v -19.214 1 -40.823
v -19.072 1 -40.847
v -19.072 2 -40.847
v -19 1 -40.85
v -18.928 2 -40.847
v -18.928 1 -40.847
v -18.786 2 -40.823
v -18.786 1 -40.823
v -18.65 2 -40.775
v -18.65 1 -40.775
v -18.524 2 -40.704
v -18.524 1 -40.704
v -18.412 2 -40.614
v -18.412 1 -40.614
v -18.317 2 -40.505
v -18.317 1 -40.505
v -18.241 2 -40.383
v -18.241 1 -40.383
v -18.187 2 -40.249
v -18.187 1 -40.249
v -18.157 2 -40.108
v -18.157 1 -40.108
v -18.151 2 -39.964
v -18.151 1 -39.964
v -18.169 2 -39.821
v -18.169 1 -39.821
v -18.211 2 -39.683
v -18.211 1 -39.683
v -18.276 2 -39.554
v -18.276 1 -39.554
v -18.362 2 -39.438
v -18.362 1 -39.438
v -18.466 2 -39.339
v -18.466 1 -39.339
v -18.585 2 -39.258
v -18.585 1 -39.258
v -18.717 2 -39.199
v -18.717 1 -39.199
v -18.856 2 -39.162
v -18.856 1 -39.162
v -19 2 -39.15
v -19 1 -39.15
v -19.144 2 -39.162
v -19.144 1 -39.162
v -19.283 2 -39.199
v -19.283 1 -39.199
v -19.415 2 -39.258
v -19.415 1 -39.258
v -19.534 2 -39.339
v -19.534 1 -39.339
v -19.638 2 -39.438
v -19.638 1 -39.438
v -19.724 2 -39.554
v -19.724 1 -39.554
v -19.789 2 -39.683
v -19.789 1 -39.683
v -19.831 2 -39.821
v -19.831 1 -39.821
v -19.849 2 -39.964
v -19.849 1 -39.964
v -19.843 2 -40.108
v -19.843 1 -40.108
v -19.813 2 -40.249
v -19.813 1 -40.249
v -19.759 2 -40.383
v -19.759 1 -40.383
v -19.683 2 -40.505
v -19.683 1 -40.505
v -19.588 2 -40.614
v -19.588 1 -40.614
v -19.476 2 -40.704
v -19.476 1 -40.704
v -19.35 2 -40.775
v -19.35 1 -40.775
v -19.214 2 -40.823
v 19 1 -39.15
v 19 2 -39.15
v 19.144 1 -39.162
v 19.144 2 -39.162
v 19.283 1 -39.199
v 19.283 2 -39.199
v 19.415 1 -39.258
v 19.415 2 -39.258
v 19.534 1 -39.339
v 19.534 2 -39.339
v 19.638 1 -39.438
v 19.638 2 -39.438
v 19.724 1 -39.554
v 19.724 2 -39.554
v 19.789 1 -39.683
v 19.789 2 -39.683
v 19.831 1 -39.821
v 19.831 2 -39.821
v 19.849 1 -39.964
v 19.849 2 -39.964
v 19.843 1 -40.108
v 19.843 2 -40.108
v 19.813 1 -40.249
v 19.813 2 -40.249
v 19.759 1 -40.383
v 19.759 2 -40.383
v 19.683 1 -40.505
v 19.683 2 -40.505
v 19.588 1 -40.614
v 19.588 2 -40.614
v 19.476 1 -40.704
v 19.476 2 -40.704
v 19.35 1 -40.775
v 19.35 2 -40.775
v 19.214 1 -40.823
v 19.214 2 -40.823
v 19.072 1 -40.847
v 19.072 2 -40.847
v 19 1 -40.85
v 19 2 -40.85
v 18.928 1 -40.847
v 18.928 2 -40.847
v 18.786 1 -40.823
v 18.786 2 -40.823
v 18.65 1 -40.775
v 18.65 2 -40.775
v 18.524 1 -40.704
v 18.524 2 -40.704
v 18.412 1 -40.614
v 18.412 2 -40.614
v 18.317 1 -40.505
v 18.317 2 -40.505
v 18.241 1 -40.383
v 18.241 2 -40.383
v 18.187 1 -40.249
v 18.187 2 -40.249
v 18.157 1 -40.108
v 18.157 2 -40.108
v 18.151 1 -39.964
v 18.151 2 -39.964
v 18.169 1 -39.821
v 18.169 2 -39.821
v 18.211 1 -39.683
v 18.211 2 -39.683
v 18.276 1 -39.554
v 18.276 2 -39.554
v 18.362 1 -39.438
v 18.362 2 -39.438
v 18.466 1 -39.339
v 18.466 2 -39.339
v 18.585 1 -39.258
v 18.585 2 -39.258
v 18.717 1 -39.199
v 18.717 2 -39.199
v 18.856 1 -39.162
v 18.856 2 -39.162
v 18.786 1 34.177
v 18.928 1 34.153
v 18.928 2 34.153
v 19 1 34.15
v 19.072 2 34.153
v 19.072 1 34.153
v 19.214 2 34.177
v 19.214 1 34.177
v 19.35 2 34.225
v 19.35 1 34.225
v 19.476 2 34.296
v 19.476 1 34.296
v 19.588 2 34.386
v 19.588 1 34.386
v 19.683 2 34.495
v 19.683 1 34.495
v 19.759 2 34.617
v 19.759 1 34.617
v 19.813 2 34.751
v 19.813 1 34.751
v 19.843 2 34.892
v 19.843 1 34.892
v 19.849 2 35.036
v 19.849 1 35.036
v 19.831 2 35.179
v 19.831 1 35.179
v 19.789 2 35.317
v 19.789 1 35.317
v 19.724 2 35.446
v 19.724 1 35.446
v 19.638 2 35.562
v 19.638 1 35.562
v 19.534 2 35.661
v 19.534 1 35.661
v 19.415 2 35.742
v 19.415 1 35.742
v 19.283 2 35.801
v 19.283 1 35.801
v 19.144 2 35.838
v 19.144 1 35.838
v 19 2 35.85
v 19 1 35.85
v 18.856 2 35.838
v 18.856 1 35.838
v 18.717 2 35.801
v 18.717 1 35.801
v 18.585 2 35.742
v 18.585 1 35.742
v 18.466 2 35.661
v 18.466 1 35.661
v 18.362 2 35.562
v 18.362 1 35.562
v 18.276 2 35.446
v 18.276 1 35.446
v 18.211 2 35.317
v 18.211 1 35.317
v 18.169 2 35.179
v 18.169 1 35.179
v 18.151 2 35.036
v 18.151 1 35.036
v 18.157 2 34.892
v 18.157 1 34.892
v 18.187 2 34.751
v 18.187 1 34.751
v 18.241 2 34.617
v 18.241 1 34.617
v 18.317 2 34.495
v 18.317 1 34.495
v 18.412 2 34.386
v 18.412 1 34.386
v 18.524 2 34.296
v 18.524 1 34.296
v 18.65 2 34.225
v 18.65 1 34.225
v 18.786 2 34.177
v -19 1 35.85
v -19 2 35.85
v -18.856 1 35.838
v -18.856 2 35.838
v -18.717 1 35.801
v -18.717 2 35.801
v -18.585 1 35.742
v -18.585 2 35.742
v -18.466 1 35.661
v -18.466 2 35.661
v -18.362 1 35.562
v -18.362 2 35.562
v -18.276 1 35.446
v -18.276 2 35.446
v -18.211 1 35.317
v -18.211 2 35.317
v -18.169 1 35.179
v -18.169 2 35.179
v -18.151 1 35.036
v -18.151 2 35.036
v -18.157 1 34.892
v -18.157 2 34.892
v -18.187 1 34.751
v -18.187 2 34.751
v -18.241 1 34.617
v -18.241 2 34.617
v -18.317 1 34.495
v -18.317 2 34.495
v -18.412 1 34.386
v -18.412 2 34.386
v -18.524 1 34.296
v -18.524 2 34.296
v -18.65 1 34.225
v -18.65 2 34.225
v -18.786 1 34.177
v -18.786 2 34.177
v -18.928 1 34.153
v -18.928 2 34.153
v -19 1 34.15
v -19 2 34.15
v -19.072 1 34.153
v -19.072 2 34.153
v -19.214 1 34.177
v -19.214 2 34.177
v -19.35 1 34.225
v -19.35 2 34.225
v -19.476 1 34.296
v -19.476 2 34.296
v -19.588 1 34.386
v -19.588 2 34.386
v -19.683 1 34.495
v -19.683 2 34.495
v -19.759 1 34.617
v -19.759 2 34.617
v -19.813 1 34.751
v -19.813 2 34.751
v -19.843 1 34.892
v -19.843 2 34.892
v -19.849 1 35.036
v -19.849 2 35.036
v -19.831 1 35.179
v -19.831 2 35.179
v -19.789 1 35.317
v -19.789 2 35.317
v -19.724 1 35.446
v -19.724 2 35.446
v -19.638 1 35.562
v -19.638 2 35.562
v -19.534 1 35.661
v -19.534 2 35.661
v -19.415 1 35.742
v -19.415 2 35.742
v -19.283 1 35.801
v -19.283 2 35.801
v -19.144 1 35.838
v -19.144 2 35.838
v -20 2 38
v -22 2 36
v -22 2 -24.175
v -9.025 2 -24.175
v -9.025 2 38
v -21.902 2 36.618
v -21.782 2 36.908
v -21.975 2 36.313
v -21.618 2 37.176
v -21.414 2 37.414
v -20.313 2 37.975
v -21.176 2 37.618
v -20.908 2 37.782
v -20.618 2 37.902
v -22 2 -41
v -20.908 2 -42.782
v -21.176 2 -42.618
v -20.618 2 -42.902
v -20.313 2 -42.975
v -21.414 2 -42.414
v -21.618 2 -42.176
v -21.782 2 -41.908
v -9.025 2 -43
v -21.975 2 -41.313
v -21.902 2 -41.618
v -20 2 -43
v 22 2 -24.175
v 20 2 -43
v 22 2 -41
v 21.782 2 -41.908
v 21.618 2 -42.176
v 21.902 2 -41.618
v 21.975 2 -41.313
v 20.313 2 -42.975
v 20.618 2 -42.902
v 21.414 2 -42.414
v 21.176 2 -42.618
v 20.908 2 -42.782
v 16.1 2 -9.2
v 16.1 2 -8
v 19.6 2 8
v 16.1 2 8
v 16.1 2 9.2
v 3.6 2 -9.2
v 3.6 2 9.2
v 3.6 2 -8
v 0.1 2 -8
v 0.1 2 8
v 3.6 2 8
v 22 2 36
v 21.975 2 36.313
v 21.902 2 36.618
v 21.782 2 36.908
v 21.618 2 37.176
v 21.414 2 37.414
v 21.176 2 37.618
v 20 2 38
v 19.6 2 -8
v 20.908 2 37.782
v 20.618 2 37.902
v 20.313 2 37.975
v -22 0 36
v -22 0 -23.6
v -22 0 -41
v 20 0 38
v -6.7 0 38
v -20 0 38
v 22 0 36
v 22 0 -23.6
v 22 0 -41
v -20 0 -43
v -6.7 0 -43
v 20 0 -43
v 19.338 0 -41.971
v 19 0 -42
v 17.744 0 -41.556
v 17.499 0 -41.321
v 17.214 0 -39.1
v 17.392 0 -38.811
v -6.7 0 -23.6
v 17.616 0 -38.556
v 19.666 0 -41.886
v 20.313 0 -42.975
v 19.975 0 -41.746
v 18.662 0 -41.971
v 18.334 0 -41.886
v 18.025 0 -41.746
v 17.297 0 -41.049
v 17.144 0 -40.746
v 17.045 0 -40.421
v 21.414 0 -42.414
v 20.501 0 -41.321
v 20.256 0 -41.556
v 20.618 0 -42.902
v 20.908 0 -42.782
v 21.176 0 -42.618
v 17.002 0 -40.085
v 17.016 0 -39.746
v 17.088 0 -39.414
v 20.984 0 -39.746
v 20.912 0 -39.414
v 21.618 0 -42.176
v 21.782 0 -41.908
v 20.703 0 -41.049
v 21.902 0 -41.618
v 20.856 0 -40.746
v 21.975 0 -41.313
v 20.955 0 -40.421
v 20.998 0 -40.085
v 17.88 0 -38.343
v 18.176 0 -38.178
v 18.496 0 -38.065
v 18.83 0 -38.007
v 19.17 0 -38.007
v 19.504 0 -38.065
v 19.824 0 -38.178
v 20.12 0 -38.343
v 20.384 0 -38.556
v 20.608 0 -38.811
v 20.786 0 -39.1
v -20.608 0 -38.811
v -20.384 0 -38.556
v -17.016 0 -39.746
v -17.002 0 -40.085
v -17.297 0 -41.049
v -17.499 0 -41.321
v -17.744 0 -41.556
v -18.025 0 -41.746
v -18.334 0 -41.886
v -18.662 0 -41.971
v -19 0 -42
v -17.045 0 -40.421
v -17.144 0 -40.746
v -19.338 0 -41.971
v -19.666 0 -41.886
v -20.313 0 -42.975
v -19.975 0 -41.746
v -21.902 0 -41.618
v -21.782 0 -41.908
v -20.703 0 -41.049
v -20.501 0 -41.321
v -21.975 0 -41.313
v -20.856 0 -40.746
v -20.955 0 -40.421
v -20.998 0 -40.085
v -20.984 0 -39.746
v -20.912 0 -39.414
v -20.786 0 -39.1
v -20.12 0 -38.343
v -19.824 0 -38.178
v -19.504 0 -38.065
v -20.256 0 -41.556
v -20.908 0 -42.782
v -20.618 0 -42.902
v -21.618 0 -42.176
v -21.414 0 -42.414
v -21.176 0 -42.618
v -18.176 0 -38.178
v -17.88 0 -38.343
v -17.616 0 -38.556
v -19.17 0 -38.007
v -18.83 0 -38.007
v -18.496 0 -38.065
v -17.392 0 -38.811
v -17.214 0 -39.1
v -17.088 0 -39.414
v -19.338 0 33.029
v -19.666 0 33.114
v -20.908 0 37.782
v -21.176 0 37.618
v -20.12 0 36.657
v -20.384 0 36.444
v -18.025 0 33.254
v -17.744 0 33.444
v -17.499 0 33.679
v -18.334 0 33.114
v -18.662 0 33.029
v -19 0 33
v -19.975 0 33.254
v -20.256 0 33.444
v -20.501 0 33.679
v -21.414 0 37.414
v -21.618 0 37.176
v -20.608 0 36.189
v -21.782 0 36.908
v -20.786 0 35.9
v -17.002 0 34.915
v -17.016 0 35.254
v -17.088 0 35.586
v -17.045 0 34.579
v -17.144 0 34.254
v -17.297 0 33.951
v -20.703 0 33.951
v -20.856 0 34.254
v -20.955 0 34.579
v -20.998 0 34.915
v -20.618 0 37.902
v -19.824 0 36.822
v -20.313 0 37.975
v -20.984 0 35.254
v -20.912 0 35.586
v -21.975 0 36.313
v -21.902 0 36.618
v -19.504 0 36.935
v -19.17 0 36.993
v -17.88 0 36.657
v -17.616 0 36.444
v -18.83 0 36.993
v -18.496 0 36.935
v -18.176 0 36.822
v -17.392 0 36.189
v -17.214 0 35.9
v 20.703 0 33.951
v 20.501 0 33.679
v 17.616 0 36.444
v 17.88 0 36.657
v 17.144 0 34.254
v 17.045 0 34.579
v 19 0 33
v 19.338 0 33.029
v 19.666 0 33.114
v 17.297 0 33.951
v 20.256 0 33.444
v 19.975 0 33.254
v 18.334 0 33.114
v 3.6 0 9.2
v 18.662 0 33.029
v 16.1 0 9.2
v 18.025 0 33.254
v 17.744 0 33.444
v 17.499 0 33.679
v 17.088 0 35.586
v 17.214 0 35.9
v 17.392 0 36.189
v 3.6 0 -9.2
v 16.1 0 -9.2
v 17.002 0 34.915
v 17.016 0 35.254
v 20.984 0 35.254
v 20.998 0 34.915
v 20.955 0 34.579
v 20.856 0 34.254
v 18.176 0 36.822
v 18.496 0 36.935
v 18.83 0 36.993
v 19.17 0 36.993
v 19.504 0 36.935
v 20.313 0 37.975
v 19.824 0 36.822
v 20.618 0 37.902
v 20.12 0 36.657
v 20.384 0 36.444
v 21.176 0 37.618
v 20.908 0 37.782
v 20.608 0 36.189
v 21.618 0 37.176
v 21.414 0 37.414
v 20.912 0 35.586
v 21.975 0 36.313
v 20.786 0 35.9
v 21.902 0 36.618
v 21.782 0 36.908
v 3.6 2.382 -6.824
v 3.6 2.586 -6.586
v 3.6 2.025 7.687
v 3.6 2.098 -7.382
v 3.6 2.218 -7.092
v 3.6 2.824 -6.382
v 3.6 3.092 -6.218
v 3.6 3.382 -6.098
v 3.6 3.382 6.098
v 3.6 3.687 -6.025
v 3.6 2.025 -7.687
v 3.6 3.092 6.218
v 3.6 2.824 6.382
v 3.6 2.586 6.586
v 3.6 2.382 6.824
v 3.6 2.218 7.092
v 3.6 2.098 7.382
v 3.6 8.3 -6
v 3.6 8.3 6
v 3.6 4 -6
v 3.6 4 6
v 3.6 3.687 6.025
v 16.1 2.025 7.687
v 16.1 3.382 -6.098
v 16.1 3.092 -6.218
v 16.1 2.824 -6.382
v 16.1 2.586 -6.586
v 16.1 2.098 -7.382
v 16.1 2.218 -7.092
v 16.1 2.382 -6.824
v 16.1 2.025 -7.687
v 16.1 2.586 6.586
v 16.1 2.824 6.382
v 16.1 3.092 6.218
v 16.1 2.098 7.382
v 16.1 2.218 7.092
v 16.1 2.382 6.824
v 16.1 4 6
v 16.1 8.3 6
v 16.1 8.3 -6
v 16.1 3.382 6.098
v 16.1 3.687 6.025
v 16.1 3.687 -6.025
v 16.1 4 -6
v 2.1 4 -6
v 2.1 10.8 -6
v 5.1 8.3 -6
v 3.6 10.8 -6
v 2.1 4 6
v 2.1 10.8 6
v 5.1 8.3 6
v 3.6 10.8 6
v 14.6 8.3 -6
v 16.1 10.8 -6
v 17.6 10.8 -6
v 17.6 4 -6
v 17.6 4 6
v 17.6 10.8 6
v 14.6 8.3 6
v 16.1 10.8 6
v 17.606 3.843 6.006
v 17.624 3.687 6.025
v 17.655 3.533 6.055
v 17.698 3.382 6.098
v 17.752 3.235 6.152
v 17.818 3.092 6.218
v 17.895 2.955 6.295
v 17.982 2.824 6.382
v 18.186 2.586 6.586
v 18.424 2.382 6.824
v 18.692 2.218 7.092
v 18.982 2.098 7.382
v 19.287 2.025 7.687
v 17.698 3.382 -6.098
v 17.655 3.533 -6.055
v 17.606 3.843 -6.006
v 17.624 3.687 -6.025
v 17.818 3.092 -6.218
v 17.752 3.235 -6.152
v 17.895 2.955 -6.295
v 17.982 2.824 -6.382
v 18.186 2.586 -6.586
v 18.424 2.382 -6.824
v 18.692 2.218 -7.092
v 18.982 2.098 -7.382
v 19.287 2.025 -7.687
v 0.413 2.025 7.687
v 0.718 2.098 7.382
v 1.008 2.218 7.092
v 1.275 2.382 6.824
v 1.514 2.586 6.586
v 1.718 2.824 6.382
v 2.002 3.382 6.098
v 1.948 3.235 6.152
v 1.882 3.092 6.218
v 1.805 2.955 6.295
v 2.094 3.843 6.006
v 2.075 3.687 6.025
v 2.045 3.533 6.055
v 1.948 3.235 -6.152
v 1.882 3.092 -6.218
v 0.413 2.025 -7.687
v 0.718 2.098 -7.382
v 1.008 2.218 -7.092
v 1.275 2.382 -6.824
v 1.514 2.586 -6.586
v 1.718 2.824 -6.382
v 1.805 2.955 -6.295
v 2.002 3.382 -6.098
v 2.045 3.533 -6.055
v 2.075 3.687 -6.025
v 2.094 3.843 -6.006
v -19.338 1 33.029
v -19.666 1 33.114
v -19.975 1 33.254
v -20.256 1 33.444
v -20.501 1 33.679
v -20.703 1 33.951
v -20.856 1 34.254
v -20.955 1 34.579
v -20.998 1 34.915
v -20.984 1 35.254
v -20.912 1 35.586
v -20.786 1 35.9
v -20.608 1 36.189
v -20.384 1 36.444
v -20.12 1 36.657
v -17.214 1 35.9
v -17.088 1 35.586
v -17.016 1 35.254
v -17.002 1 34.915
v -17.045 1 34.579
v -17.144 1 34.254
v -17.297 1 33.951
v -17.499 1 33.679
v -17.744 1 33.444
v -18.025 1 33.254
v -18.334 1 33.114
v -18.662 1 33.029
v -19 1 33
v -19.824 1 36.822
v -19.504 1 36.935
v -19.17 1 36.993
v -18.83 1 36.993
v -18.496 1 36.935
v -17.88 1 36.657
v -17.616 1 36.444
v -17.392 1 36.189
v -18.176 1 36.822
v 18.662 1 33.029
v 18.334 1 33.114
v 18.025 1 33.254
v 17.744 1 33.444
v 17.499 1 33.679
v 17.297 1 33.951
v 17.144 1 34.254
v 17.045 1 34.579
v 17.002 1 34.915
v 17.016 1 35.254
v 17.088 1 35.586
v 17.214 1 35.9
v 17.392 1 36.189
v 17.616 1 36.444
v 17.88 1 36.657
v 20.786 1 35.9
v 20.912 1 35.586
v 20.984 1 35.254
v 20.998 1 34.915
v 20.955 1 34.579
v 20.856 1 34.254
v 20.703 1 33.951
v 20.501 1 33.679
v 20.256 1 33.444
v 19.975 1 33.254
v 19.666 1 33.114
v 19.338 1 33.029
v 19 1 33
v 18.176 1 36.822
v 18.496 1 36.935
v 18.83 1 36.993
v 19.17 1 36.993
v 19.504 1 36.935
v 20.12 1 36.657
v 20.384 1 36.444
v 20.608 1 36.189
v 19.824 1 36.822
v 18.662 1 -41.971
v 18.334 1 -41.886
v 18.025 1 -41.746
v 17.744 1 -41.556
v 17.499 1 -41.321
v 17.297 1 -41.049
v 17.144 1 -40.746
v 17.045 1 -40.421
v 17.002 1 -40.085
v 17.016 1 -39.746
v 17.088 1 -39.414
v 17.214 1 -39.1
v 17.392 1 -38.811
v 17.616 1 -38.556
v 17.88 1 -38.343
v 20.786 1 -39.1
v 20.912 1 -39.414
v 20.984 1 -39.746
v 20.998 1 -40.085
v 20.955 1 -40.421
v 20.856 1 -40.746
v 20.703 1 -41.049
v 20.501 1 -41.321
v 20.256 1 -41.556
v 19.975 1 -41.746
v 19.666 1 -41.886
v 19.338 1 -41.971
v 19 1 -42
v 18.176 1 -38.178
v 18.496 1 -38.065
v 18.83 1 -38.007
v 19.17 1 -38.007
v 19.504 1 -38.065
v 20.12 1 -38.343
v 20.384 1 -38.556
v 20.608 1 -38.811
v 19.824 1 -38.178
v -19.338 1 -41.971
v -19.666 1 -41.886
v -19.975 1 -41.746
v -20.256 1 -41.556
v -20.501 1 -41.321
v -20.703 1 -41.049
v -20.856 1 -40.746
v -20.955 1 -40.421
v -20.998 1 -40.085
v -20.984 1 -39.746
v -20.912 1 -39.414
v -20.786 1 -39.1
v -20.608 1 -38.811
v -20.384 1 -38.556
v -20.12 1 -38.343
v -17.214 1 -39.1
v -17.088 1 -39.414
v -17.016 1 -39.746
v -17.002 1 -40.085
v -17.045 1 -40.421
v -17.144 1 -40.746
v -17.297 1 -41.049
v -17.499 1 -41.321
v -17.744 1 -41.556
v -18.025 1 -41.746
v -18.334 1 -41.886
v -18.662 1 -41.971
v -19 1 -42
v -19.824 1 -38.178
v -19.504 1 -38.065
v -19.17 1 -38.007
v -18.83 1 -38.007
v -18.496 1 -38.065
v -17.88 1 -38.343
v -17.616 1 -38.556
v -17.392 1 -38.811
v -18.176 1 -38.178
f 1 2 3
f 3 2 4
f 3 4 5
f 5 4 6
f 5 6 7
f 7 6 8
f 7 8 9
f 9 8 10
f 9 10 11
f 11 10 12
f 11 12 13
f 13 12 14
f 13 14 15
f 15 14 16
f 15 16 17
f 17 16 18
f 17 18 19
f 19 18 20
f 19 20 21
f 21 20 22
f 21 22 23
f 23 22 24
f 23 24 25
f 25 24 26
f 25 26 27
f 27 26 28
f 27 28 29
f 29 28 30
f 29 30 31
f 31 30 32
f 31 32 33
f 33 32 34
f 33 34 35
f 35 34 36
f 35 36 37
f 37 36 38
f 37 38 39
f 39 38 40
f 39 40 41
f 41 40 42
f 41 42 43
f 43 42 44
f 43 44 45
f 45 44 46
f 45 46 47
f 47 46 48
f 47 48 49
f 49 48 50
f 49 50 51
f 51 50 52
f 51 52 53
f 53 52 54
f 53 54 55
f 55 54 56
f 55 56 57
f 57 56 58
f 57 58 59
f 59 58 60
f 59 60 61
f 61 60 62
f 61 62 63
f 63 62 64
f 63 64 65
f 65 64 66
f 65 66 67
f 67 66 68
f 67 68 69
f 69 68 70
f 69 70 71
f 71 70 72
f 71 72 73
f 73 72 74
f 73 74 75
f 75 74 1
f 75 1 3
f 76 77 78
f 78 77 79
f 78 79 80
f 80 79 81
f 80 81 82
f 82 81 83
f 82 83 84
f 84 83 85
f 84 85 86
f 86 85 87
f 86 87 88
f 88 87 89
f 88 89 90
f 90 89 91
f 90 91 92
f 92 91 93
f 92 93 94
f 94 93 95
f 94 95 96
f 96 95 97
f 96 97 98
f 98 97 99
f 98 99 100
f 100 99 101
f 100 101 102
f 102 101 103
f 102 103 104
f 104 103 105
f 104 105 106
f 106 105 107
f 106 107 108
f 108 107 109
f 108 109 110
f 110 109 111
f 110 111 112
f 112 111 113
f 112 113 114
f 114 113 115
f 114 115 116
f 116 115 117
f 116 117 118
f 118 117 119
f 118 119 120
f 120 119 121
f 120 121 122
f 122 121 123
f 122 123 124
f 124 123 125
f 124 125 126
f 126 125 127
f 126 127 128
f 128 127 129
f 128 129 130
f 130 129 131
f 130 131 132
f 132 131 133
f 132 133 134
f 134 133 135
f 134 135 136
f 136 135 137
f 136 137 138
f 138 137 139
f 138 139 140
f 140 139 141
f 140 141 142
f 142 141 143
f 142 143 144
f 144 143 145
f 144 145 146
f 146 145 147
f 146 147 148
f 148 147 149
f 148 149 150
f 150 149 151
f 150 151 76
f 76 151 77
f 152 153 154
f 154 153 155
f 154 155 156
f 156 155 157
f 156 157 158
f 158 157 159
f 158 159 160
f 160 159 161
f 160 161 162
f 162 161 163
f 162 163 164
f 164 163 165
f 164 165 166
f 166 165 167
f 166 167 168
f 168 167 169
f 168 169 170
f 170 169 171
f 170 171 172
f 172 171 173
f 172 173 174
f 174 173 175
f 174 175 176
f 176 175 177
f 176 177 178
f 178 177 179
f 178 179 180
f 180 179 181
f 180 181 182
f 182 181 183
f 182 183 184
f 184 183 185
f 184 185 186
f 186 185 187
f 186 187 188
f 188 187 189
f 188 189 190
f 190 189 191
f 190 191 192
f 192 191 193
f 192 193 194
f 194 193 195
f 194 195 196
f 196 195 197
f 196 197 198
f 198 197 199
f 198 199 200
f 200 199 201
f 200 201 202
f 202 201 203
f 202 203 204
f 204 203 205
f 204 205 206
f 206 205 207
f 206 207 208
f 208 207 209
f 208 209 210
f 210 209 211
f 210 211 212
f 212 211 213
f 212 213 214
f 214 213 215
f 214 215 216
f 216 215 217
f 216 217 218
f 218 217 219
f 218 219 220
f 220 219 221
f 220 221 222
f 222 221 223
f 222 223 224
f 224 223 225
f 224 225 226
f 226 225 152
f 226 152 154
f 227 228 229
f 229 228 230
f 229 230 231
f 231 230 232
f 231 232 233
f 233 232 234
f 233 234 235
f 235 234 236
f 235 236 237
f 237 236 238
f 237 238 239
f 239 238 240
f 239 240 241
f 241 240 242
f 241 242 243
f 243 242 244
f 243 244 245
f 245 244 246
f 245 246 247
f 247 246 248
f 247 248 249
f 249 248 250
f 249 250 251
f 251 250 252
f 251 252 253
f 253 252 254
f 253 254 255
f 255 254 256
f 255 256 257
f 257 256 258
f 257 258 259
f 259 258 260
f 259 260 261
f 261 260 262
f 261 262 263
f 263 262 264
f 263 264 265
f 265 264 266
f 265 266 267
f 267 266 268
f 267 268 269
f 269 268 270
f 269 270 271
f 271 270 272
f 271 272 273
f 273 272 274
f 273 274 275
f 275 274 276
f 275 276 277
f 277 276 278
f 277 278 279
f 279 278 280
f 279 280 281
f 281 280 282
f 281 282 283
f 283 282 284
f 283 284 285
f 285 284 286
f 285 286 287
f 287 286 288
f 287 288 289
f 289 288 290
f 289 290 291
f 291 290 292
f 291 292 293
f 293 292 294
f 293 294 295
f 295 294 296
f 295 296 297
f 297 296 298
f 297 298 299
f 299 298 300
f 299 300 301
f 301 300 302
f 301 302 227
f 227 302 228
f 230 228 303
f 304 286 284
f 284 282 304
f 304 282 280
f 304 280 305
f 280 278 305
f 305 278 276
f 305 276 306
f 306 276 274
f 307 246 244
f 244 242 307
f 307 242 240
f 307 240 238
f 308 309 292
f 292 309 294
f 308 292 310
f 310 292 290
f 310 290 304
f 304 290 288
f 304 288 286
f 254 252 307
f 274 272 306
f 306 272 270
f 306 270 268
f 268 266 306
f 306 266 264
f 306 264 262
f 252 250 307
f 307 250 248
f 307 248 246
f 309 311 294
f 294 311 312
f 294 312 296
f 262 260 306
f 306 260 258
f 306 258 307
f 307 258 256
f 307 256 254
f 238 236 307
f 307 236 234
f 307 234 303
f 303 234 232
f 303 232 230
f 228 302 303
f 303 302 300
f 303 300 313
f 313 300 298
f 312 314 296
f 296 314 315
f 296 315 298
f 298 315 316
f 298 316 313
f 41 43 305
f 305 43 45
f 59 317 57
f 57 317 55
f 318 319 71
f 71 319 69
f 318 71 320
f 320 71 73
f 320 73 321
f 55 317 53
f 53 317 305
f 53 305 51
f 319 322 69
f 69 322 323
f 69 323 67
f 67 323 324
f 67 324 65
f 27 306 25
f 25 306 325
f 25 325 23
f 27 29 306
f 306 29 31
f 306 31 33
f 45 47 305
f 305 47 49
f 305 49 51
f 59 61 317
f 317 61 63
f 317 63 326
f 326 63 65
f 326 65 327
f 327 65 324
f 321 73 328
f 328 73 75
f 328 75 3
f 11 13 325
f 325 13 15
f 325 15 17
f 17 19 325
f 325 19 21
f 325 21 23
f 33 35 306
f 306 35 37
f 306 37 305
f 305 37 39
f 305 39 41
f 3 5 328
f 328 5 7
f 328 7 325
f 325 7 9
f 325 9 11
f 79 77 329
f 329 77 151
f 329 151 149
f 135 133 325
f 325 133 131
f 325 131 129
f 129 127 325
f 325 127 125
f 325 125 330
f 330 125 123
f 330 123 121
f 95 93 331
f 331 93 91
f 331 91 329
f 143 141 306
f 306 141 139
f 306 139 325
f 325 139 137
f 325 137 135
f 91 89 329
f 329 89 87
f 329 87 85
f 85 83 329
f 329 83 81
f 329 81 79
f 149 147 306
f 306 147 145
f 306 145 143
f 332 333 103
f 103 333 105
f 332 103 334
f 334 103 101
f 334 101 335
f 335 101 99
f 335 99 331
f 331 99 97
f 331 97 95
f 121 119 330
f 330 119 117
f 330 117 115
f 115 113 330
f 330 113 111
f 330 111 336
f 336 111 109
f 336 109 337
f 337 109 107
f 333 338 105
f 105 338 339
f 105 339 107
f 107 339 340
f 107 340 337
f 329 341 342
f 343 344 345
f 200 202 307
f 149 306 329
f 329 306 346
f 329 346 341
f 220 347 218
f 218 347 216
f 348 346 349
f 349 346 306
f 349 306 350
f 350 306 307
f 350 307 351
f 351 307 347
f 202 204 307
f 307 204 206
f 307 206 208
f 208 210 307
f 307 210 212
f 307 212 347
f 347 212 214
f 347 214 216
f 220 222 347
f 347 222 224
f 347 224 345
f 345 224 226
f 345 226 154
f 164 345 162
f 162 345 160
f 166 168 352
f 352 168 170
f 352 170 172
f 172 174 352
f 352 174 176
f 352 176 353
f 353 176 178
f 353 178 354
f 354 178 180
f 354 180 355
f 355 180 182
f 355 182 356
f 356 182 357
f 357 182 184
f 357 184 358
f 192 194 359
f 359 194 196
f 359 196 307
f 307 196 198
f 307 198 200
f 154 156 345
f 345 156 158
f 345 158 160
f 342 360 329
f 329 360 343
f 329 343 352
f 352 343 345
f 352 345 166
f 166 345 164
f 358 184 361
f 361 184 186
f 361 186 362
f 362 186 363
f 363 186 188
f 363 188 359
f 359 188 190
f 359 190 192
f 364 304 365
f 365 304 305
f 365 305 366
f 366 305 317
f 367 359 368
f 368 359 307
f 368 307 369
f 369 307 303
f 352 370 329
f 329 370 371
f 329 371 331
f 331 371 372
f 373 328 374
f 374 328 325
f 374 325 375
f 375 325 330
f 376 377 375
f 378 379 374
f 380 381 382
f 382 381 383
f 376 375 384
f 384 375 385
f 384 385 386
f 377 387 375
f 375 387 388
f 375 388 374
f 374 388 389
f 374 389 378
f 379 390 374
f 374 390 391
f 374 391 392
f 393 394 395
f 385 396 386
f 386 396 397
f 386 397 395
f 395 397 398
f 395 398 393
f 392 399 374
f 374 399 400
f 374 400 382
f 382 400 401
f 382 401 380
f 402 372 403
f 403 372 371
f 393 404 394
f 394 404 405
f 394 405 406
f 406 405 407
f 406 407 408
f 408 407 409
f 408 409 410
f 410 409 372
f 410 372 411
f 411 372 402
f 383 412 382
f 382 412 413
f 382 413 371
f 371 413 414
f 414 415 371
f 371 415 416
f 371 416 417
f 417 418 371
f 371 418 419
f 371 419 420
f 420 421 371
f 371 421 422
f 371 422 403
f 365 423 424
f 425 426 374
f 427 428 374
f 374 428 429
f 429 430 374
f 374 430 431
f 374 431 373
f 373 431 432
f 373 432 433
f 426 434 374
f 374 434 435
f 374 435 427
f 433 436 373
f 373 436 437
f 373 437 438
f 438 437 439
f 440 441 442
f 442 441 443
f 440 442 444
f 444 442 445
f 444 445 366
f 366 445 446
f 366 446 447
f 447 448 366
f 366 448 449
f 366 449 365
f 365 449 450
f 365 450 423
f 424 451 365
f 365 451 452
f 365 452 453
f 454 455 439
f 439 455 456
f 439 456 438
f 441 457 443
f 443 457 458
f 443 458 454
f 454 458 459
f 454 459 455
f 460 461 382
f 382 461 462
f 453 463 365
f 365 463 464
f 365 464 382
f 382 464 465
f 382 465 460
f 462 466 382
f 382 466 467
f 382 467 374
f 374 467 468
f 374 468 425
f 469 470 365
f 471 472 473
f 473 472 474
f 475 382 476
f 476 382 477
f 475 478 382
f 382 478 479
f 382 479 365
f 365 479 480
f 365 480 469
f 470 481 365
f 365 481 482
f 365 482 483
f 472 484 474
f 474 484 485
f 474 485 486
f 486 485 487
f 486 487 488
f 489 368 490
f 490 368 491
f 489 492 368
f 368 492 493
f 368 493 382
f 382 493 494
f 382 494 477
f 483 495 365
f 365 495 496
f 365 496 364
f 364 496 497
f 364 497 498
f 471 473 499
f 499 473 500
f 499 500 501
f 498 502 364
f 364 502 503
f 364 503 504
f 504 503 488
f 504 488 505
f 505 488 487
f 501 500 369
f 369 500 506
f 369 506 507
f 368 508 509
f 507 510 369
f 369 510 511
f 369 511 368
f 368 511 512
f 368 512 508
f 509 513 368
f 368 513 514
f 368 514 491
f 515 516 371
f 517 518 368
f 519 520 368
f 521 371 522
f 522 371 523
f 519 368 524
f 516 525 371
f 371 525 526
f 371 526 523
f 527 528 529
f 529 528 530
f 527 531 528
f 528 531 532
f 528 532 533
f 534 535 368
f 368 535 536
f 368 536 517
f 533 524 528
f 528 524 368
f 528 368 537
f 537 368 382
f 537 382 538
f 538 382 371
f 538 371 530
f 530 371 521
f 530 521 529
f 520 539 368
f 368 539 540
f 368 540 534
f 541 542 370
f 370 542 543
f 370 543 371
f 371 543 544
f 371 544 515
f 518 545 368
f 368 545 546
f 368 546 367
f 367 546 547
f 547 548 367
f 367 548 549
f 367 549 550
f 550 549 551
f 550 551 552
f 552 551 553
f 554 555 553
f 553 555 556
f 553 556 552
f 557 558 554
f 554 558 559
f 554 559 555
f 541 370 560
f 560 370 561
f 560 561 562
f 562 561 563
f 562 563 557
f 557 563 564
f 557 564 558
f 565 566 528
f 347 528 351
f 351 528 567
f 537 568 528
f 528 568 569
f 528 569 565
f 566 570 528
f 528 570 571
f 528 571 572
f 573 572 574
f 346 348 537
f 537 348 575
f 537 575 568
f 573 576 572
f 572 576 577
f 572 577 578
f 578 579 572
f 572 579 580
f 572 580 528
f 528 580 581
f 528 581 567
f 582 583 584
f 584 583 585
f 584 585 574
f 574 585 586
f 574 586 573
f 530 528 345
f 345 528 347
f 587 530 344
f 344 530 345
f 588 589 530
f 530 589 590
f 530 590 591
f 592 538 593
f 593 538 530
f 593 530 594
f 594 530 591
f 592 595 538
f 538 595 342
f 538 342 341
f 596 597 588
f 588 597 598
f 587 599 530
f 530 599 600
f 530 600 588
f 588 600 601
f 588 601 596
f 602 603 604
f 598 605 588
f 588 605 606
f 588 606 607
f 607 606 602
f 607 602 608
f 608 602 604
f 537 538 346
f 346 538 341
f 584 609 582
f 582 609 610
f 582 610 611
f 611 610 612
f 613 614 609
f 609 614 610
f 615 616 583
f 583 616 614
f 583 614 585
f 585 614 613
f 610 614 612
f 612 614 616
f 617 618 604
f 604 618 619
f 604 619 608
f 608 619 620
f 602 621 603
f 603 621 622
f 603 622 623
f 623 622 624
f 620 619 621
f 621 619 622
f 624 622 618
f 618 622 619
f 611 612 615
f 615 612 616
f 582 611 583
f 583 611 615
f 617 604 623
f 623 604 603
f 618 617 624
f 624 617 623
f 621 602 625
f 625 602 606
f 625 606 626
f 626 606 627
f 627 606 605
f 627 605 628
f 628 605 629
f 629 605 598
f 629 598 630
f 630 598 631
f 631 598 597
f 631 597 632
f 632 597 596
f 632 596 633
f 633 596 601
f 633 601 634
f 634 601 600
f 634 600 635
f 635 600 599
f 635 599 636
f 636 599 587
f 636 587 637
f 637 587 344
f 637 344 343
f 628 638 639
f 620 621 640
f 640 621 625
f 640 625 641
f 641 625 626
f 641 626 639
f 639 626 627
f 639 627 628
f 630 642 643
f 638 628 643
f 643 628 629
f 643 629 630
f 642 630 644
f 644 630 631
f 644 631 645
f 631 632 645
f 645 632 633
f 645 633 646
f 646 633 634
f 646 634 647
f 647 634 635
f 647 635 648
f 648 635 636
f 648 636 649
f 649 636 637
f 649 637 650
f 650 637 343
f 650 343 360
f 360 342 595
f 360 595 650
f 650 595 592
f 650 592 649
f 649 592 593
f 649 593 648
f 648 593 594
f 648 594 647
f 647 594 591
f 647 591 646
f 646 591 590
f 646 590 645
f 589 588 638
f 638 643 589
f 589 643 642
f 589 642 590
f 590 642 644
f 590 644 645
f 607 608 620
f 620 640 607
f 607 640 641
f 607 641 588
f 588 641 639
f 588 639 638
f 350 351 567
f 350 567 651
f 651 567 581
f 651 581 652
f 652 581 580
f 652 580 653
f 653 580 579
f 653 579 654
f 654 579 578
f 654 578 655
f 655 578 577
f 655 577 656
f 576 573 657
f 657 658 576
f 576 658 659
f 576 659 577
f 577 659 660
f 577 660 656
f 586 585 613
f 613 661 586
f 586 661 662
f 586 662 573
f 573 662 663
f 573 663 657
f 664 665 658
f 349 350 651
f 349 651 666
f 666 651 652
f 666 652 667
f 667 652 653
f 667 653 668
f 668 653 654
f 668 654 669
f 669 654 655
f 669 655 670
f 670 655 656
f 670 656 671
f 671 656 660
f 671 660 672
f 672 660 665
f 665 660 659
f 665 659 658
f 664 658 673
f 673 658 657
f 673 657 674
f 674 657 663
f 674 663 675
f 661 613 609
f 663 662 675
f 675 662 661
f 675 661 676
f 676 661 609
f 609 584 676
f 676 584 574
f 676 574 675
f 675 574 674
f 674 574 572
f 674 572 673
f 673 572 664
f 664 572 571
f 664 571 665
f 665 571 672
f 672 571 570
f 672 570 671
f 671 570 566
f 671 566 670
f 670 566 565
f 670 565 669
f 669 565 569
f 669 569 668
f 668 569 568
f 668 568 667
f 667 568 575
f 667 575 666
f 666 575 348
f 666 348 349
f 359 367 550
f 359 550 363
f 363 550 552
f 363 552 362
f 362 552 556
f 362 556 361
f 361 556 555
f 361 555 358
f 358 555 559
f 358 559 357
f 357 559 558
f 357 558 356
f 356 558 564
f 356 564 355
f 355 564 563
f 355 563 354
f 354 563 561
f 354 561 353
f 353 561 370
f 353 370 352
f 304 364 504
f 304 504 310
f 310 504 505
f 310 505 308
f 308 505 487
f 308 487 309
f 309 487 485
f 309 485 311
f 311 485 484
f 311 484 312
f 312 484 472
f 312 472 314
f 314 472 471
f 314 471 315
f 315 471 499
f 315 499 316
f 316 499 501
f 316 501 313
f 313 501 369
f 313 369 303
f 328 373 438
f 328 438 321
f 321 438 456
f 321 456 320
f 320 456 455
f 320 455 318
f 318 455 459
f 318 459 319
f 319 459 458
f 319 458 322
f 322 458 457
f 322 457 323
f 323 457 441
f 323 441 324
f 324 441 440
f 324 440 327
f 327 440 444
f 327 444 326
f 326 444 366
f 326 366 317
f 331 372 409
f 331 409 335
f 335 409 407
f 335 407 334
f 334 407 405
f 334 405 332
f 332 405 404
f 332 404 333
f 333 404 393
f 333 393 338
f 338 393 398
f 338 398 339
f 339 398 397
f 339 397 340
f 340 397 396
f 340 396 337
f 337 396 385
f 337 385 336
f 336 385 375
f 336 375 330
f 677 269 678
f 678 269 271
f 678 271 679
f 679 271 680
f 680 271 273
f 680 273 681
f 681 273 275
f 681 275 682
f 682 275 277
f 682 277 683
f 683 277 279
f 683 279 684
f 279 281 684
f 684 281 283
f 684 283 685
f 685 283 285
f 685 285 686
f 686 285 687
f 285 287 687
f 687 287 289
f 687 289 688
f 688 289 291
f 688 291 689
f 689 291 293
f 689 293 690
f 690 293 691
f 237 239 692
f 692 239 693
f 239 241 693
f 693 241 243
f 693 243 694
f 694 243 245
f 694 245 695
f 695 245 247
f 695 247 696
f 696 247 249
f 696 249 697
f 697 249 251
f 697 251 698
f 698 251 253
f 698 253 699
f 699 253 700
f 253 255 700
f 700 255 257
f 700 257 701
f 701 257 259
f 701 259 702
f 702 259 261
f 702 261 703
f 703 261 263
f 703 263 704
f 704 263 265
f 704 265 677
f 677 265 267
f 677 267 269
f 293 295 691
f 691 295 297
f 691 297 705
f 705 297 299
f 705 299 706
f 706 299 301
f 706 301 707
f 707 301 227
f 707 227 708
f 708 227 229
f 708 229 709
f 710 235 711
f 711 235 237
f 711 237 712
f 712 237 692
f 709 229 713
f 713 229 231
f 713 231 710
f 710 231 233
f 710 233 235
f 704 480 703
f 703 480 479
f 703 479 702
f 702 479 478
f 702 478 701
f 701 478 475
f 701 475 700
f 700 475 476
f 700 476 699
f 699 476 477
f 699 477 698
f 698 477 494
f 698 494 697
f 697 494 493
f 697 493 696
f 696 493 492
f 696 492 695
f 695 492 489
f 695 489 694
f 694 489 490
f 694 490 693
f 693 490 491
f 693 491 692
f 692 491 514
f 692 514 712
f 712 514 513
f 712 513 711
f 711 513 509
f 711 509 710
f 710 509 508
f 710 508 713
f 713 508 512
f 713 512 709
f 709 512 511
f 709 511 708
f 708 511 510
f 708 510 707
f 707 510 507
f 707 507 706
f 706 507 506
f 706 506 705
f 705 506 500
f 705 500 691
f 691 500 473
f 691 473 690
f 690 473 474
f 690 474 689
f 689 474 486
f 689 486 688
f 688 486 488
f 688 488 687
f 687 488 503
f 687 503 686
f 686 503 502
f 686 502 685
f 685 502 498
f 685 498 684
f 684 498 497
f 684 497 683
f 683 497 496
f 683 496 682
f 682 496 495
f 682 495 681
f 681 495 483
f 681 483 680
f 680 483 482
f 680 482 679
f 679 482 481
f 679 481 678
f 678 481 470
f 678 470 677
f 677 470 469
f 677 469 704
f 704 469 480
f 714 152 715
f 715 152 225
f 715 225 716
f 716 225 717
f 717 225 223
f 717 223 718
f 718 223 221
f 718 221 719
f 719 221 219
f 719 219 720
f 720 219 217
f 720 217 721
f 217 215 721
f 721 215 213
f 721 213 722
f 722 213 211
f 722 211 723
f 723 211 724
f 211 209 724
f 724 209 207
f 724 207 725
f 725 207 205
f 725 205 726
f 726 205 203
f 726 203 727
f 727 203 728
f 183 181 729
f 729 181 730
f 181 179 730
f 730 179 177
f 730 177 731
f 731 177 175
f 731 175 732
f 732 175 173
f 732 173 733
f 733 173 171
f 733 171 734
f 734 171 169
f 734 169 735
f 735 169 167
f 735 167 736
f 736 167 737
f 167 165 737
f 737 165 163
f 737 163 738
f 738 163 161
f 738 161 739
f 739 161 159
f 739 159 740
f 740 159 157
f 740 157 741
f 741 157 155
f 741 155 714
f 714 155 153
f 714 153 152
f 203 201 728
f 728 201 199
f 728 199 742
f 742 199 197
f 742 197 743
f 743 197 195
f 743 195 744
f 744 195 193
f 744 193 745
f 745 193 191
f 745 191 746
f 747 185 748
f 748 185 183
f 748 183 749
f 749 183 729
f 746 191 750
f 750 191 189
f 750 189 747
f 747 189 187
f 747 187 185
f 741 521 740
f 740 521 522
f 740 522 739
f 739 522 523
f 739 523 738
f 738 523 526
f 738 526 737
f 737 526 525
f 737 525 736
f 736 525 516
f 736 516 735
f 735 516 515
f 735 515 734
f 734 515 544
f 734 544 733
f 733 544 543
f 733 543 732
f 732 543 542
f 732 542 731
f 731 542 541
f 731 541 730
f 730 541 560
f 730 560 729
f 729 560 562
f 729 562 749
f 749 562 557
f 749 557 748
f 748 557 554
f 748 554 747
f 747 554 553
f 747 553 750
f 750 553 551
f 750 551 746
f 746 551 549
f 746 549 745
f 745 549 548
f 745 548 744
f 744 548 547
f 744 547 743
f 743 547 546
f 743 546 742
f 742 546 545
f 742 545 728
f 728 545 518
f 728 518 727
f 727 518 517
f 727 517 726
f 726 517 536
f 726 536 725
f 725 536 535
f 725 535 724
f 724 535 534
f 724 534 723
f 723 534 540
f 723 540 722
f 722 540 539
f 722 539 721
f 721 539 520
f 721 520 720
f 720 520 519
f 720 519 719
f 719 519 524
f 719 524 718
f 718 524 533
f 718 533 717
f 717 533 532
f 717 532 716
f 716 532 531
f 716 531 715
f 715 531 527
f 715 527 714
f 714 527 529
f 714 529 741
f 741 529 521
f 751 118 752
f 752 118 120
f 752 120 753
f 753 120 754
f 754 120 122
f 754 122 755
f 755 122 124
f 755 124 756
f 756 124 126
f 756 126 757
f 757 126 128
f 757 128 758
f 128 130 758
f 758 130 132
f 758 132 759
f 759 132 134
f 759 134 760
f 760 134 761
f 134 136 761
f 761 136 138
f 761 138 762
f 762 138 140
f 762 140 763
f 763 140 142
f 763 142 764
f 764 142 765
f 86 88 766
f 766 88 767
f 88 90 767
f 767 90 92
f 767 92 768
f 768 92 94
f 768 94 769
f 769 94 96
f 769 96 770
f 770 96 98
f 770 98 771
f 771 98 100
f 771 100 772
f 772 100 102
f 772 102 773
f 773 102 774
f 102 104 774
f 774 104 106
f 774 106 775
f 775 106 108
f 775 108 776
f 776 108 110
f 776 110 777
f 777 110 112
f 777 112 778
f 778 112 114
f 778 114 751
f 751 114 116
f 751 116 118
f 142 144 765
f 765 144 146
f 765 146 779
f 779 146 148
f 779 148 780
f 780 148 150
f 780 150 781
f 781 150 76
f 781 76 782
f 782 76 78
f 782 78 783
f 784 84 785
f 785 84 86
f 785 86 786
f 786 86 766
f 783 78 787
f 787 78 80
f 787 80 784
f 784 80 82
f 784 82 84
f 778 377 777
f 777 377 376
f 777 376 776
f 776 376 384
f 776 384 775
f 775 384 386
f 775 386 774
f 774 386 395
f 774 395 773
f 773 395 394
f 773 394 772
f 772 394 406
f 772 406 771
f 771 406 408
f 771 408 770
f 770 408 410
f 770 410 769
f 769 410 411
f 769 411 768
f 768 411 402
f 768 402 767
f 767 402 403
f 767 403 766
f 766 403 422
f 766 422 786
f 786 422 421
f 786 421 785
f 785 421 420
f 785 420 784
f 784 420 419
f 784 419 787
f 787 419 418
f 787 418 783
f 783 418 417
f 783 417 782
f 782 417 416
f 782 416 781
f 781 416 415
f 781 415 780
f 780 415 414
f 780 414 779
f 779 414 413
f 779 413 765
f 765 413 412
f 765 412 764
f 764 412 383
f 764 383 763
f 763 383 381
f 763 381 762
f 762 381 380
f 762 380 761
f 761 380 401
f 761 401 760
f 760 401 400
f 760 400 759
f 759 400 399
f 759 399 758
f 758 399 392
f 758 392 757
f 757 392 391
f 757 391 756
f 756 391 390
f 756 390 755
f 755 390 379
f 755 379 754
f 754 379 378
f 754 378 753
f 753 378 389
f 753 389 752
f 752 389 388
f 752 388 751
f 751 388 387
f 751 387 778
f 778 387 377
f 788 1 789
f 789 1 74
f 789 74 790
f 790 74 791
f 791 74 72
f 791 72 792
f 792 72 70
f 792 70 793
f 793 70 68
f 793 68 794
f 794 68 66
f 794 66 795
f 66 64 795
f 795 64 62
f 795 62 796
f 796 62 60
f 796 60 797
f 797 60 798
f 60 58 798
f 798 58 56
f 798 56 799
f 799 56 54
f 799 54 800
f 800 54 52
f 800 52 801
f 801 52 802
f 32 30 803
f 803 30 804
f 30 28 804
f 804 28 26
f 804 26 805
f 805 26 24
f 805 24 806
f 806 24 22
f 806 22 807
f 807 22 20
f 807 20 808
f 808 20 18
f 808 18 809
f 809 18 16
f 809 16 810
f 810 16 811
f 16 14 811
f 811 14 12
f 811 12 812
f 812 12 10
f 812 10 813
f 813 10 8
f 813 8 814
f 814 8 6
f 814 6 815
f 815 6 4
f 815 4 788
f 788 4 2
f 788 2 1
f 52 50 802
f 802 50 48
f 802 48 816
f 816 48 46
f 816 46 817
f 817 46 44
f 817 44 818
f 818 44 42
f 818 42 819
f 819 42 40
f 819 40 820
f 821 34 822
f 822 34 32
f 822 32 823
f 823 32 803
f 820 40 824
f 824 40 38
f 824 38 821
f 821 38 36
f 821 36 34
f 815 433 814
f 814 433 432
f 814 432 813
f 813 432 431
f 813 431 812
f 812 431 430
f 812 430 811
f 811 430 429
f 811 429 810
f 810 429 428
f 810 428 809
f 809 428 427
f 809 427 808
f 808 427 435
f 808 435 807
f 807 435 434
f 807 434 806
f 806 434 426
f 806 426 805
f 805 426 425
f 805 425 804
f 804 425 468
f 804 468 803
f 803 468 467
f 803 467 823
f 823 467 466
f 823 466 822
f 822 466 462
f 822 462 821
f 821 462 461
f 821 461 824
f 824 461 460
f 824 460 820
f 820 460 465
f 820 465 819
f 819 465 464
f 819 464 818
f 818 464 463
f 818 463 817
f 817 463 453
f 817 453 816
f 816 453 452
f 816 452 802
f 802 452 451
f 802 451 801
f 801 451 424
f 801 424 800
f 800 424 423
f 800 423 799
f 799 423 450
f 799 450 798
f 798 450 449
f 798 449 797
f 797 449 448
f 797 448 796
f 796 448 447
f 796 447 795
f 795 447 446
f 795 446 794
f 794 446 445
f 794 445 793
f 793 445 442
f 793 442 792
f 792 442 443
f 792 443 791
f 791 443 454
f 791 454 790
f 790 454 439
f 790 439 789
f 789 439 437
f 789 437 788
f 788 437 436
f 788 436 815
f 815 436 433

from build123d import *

# Parameters (mm, degrees)
SKETCH_1_W          = 44
SKETCH_1_H          = 81
EXTRUDE_1_DEPTH     = 2
SKETCH_12_W         = 12.5
SKETCH_12_H         = 18.4
CUT_EXTRUDE_3_DEPTH = 7.5
SKETCH_15_W         = 1.5
SKETCH_15_H         = 12
EXTRUDE_10_DEPTH    = 8.8
EXTRUDE_11_DEPTH    = 12
EXTRUDE_12_DEPTH    = 12
FILLET_2_R          = 2
FILLET_3_R          = 2
SKETCH_19_R         = 0.85
CUT_EXTRUDE_4_DEPTH = 12
SKETCH_20_R         = 2
CUT_EXTRUDE_5_DEPTH = 1


with BuildPart() as part:
    # 草图1 → 凸台-拉伸1 (new body)
    with BuildSketch(Plane(origin=(0, 0, 0), x_dir=(1, 0, 0), z_dir=(0, 1, 0))):
        with Locations((0, 2.5)):
            Rectangle(SKETCH_1_W, SKETCH_1_H)
    extrude(amount=EXTRUDE_1_DEPTH)

    # 草图12 → 切除-拉伸3 (cut)
    with BuildSketch(Plane.XZ):
        with Locations((9.849848709, 0)):
            Rectangle(SKETCH_12_W, SKETCH_12_H)
    extrude(amount=-CUT_EXTRUDE_3_DEPTH, mode=Mode.SUBTRACT)

    # 草图15 → 凸台-拉伸10 (add)
    with BuildSketch(Plane(origin=(0, 2, 0), x_dir=(1, 0, 0), z_dir=(0, 1, 0))):
        with Locations((2.849848709, 0)):
            Rectangle(SKETCH_15_W, SKETCH_15_H)
        with Locations((16.849848709, 0)):
            Rectangle(SKETCH_15_W, SKETCH_15_H)
    extrude(amount=EXTRUDE_10_DEPTH)

    # 草图16 → 凸台-拉伸11 (add)
    with BuildSketch(Plane.XY.offset(6)):
        Polygon((3.599848709, 10.8), (5.099848709, 8.3), (3.599848709, 8.3), align=None)
    extrude(amount=-EXTRUDE_11_DEPTH)

    # 草图18 → 凸台-拉伸12 (add)
    with BuildSketch(Plane.XY.offset(6)):
        Polygon((16.099848709, 10.8), (14.599848709, 8.3), (16.099848709, 8.3), align=None)
    extrude(amount=-EXTRUDE_12_DEPTH)

    # 圆角2
    fillet_2_edges = [part.edges().sort_by_distance(p)[0] for p in [
        (2.849848709, 2, -6),
        (2.099848709, 2, 0),
        (2.849848709, 2, 6),
        (16.849848709, 2, -6),
        (16.849848709, 2, 6),
        (17.599848709, 2, 0),
    ]]
    fillet(fillet_2_edges, radius=FILLET_2_R)

    # 圆角3
    fillet_3_edges = [part.edges().sort_by_distance(p)[0] for p in [
        (-22, 1, -43),
        (22, 1, -43),
        (22, 1, 38),
        (-22, 1, 38),
    ]]
    fillet(fillet_3_edges, radius=FILLET_3_R)

    # 草图19 → 切除-拉伸4 (cut)
    with BuildSketch(Plane(origin=(0, 2, 0), x_dir=(1, 0, 0), z_dir=(0, 1, 0))):
        with Locations(Location((-19, 40, 0), (0, 0, 270))):
            Circle(SKETCH_19_R)
        with Locations(Location((19, 40, 0), (0, 0, 270))):
            Circle(SKETCH_19_R)
        with Locations(Location((19, -35, 0), (0, 0, 270))):
            Circle(SKETCH_19_R)
        with Locations(Location((-19, -35, 0), (0, 0, 270))):
            Circle(SKETCH_19_R)
    extrude(amount=-CUT_EXTRUDE_4_DEPTH, mode=Mode.SUBTRACT)

    # 草图20 → 切除-拉伸5 (cut)
    with BuildSketch(Plane.XZ):
        with Locations(Location((-19, 35, 0), (0, 0, 270))):
            Circle(SKETCH_20_R)
        with Locations(Location((19, 35, 0), (0, 0, 270))):
            Circle(SKETCH_20_R)
        with Locations(Location((-19, -40, 0), (0, 0, 270))):
            Circle(SKETCH_20_R)
        with Locations(Location((19, -40, 0), (0, 0, 270))):
            Circle(SKETCH_20_R)
    extrude(amount=-CUT_EXTRUDE_5_DEPTH, mode=Mode.SUBTRACT)


solid = part.part
